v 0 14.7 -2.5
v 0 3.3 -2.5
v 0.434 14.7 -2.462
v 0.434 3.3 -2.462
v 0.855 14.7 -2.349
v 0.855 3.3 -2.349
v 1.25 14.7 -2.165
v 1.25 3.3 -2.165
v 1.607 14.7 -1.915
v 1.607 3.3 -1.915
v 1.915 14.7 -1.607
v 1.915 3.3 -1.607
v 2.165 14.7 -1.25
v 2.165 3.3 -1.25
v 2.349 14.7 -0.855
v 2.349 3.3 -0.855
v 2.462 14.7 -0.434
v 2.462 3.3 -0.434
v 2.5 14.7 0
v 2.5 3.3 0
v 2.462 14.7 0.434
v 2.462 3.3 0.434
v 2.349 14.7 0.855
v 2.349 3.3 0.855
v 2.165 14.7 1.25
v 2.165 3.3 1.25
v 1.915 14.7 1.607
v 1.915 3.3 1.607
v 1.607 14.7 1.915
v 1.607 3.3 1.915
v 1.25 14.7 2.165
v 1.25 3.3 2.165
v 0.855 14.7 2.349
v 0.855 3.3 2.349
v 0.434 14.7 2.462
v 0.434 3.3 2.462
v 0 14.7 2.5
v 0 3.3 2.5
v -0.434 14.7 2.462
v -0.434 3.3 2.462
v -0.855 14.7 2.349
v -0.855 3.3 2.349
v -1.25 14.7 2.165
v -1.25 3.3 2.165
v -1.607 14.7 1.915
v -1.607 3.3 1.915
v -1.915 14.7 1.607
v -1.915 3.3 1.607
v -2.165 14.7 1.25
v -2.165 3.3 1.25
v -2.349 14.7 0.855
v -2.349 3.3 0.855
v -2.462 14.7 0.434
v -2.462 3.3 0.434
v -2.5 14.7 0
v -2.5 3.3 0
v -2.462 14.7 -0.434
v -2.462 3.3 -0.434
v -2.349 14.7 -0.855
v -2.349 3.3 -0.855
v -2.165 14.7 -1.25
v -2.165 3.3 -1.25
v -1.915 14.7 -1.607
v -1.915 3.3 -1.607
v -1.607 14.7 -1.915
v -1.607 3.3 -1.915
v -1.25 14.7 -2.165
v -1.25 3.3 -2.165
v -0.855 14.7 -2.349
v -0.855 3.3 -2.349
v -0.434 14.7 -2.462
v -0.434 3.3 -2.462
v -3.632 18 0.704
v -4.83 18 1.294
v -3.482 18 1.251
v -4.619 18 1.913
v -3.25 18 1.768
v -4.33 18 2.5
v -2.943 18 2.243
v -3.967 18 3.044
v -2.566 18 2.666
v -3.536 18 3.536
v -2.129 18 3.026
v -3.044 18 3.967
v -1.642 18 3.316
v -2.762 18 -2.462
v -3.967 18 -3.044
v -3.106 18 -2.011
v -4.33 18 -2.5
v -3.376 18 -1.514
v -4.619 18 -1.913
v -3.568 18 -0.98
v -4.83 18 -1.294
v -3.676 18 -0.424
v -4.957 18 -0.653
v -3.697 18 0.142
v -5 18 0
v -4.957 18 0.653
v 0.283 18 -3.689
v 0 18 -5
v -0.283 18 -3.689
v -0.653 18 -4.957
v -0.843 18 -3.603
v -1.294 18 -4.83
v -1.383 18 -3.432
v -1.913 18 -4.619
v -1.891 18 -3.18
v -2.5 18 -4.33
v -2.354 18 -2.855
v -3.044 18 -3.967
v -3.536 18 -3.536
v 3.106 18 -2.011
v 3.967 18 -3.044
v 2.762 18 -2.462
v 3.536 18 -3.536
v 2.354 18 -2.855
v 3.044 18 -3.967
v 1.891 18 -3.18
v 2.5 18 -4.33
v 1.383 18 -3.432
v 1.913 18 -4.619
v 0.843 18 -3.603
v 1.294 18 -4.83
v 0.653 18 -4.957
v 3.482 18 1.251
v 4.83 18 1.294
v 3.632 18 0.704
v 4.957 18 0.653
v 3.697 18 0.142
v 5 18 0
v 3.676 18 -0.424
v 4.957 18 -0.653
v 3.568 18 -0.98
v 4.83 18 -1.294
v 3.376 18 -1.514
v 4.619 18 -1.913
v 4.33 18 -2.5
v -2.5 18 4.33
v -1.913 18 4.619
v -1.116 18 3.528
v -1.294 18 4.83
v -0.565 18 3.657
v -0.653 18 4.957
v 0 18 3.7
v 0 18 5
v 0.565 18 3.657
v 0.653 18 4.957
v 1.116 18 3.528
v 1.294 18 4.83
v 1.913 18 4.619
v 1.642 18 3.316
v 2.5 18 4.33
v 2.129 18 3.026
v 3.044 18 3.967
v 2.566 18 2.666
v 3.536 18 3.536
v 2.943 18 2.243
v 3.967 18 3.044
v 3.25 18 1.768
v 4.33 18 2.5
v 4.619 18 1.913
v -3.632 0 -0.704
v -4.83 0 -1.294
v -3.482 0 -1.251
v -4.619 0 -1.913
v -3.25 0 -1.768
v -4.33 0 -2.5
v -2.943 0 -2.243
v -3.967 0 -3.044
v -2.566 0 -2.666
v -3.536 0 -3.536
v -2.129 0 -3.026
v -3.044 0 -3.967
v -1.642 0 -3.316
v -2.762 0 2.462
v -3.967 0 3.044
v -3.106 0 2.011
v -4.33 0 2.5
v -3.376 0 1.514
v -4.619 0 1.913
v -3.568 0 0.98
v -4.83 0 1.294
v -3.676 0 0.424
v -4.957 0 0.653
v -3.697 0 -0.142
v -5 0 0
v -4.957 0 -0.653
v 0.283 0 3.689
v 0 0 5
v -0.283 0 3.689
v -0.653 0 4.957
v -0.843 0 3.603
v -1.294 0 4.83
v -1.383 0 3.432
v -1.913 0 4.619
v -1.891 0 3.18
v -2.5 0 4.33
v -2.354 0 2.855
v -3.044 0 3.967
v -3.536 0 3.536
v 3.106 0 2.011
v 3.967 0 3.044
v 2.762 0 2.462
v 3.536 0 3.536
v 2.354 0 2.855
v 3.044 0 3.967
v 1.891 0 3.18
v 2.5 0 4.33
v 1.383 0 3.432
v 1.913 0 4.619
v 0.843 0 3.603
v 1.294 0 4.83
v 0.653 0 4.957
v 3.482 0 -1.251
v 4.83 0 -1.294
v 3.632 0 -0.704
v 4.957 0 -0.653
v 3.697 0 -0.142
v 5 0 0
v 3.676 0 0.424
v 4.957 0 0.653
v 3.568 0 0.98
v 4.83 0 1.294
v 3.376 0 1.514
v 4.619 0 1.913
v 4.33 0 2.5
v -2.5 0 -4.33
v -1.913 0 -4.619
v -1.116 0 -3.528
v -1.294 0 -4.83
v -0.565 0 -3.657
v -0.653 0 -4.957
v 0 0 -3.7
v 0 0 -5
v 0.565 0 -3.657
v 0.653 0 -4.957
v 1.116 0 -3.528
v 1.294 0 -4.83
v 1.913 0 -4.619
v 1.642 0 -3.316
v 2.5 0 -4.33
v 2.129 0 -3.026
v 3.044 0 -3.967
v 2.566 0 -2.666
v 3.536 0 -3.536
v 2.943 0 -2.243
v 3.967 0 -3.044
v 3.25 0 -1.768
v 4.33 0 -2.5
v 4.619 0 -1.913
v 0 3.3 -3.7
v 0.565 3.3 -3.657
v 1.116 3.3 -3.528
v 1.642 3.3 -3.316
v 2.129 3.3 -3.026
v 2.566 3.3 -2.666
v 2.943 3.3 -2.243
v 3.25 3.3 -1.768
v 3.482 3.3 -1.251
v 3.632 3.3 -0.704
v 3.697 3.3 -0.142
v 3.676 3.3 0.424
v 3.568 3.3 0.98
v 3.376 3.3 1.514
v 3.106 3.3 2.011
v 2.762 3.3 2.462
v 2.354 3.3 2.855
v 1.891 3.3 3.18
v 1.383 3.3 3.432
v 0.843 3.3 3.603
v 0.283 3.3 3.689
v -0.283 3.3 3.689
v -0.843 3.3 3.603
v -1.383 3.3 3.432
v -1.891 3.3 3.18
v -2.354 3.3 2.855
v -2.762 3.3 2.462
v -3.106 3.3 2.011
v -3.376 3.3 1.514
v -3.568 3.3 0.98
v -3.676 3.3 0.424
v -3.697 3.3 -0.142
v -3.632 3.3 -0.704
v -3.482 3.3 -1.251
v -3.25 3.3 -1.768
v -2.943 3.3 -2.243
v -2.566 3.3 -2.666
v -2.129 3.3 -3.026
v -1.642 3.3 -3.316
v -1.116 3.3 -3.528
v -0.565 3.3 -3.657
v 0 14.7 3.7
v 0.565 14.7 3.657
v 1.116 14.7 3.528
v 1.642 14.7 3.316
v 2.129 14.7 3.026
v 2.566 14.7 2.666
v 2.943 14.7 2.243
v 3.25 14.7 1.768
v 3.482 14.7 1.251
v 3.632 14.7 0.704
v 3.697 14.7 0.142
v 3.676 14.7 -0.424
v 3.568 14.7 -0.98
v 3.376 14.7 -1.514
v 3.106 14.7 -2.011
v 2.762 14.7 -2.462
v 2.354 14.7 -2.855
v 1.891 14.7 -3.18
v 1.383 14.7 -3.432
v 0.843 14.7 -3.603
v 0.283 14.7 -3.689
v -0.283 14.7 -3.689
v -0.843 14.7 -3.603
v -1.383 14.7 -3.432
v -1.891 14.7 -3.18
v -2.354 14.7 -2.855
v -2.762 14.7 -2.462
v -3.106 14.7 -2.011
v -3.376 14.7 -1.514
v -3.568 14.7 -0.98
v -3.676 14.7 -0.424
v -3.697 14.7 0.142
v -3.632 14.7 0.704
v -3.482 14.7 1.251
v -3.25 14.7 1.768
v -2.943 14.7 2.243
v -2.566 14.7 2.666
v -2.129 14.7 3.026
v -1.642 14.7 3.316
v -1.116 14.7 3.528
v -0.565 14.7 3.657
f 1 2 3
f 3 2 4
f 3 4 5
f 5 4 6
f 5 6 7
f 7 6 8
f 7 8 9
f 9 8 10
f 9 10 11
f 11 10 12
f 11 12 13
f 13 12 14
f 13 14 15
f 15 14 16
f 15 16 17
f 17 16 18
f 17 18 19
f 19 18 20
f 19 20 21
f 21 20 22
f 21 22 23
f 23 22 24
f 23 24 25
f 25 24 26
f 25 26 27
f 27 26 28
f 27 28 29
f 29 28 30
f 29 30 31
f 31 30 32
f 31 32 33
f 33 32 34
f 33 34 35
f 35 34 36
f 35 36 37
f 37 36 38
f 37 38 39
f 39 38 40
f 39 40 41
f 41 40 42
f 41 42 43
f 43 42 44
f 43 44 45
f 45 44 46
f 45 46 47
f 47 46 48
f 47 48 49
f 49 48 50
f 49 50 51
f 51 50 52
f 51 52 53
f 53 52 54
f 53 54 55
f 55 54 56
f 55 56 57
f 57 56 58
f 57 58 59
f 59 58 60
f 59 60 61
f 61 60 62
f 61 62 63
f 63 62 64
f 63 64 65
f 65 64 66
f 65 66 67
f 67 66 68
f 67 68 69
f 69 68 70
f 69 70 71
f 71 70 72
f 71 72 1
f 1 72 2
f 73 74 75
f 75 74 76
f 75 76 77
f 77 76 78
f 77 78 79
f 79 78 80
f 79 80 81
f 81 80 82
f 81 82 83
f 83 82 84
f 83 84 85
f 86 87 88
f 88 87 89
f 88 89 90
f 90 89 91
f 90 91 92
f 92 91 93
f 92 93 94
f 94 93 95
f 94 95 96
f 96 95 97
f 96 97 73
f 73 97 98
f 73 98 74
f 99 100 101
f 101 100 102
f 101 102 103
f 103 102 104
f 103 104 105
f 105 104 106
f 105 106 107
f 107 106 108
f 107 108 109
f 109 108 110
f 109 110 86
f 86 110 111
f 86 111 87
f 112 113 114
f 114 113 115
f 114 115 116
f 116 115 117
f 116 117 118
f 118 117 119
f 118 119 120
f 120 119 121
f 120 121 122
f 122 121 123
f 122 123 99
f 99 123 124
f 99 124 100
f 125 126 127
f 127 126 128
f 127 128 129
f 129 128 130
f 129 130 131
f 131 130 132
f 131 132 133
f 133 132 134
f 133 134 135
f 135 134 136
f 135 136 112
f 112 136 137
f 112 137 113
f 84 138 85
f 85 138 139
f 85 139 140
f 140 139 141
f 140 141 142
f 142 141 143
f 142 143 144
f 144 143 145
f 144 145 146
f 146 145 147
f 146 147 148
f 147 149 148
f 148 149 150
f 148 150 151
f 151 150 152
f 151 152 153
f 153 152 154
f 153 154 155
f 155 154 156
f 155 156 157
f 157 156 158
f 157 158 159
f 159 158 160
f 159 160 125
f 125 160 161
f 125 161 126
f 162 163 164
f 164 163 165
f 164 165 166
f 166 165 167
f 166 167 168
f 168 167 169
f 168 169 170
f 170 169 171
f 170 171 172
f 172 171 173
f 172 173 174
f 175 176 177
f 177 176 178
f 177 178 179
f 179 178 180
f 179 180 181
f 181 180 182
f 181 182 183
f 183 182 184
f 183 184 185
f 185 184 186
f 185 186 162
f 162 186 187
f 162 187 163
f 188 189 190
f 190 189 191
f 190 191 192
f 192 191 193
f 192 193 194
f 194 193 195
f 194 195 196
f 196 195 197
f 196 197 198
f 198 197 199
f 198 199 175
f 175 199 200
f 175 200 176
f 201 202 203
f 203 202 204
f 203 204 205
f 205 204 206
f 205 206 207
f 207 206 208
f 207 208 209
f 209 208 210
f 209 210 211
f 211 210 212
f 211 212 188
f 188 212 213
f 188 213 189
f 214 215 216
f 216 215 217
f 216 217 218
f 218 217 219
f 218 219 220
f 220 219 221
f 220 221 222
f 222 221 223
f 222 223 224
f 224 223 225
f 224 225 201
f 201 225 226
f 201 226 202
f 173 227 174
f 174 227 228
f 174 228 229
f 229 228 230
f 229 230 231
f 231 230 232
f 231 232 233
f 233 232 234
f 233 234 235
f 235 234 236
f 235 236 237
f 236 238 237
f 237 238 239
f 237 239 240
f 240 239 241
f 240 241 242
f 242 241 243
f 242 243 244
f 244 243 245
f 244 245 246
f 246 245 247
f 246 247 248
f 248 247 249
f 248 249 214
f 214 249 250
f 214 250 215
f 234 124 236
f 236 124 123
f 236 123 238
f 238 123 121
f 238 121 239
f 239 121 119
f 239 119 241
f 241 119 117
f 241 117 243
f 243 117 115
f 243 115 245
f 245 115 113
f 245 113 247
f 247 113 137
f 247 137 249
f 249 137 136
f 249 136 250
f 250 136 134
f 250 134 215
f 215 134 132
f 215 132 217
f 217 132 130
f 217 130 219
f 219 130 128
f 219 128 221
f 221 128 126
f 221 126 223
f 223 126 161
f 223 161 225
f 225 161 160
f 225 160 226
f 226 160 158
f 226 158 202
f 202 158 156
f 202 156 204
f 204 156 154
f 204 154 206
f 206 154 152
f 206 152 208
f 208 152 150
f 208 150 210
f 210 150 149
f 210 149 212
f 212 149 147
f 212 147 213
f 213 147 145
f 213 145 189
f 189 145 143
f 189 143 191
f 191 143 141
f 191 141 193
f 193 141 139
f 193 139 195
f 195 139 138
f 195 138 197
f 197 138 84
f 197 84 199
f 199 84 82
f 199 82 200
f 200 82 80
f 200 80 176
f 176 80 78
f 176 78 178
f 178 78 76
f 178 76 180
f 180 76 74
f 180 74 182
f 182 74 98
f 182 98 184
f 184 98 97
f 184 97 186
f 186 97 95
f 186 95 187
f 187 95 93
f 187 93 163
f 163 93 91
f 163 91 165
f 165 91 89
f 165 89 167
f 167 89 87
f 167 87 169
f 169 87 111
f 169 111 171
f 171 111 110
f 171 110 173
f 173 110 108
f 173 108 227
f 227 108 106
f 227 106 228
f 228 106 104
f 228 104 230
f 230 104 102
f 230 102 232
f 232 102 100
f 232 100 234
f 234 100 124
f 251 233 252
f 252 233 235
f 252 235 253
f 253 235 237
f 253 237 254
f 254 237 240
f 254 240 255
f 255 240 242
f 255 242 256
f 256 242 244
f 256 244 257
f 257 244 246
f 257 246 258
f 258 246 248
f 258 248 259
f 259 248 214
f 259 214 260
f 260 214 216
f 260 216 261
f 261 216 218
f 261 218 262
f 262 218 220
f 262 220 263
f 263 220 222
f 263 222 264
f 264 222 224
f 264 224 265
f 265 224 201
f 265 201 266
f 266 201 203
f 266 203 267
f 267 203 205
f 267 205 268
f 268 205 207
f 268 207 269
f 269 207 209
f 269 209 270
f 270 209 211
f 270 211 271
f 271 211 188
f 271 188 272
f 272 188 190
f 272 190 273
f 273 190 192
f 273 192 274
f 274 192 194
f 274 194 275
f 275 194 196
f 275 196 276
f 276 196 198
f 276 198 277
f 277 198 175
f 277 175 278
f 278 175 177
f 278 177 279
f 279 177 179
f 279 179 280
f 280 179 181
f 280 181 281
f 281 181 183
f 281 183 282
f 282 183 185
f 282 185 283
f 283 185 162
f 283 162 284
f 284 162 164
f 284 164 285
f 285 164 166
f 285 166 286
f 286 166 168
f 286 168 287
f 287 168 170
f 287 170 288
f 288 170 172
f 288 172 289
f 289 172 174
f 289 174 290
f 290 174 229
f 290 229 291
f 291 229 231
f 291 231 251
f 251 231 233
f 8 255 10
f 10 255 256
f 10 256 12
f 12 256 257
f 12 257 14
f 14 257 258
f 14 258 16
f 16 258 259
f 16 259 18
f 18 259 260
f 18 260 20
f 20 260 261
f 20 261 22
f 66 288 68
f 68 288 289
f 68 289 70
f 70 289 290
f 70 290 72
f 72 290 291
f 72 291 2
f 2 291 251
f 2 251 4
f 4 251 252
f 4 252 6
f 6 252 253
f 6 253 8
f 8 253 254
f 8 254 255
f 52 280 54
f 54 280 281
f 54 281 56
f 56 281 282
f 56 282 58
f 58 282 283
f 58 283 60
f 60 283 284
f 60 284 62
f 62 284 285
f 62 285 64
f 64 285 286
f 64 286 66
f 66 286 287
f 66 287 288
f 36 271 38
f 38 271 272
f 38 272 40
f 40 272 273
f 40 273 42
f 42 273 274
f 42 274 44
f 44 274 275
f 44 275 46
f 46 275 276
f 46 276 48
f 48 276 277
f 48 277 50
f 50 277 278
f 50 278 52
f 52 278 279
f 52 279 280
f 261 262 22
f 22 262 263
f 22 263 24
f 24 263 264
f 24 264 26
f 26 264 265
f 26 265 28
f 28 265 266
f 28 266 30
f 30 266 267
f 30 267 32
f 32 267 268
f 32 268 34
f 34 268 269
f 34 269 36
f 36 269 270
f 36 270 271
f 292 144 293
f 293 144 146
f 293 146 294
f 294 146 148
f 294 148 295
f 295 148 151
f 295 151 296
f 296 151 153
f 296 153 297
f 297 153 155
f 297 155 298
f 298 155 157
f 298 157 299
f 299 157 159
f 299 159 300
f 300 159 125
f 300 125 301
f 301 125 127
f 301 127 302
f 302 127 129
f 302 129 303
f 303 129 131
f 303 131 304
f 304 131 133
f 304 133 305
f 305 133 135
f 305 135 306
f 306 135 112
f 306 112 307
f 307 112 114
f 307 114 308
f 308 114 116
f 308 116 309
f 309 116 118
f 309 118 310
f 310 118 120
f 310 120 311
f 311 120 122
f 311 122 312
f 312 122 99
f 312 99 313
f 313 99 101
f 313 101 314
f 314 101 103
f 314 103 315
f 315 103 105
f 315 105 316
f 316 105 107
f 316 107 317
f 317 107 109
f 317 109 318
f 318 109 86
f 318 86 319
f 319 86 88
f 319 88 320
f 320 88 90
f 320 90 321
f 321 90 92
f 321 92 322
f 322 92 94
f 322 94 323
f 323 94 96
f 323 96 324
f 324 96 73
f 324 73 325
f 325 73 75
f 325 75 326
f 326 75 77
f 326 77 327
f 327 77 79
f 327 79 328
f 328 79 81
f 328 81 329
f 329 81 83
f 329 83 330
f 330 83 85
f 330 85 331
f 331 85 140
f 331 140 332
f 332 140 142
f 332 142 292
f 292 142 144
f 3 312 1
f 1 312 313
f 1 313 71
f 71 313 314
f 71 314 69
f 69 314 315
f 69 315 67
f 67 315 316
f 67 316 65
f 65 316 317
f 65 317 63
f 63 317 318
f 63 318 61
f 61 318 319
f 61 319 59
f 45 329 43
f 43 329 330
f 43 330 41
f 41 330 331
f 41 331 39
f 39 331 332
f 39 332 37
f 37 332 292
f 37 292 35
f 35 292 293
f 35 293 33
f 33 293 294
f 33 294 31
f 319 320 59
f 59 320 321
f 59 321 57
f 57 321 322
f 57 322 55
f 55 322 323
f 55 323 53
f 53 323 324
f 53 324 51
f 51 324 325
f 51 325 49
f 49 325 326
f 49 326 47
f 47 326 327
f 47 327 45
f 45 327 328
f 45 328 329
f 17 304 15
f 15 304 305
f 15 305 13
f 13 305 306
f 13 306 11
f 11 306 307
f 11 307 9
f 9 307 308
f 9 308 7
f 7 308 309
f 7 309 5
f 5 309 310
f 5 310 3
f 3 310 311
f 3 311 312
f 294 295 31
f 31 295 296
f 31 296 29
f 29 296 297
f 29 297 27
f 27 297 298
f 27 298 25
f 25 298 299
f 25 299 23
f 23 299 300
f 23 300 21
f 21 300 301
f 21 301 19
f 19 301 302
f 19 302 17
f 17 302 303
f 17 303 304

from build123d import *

# Parameters (mm, degrees)
SKETCH1_R           = 5
SKETCH1_R_2         = 2.5
BOSS_EXTRUDE1_DEPTH = 18
SKETCH2_R           = 3.7
SKETCH2_R_2         = 2.5
CUT_EXTRUDE1_DEPTH  = 3.3
CUT_EXTRUDE2_START  = -14.7
SKETCH2_2_R         = 3.7
SKETCH2_2_R_2       = 2.5
CUT_EXTRUDE2_DEPTH  = 3.3


with BuildPart() as part:
    # Sketch1 → Boss-Extrude1 (new body)
    with BuildSketch(Plane(origin=(0, 0, 0), x_dir=(1, 0, 0), z_dir=(0, 1, 0))):
        with Locations(Location((0, 0, 0), (0, 0, 270))):
            Circle(SKETCH1_R)
        with Locations(Location((0, 0, 0), (0, 0, 270))):
            Circle(SKETCH1_R_2, mode=Mode.SUBTRACT)
    extrude(amount=BOSS_EXTRUDE1_DEPTH)

    # Sketch2 → Cut-Extrude1 (cut)
    with BuildSketch(Plane.XZ):
        with Locations(Location((0, 0, 0), (0, 0, 270))):
            Circle(SKETCH2_R)
        with Locations(Location((0, 0, 0), (0, 0, 270))):
            Circle(SKETCH2_R_2, mode=Mode.SUBTRACT)
    extrude(amount=-CUT_EXTRUDE1_DEPTH, mode=Mode.SUBTRACT)

    # Sketch2<2> → Cut-Extrude2 (cut)
    with BuildSketch(Plane.XZ.offset(CUT_EXTRUDE2_START)):
        with Locations(Location((0, 0, 0), (0, 0, 270))):
            Circle(SKETCH2_2_R)
        with Locations(Location((0, 0, 0), (0, 0, 270))):
            Circle(SKETCH2_2_R_2, mode=Mode.SUBTRACT)
    extrude(amount=-CUT_EXTRUDE2_DEPTH, mode=Mode.SUBTRACT)


solid = part.part
